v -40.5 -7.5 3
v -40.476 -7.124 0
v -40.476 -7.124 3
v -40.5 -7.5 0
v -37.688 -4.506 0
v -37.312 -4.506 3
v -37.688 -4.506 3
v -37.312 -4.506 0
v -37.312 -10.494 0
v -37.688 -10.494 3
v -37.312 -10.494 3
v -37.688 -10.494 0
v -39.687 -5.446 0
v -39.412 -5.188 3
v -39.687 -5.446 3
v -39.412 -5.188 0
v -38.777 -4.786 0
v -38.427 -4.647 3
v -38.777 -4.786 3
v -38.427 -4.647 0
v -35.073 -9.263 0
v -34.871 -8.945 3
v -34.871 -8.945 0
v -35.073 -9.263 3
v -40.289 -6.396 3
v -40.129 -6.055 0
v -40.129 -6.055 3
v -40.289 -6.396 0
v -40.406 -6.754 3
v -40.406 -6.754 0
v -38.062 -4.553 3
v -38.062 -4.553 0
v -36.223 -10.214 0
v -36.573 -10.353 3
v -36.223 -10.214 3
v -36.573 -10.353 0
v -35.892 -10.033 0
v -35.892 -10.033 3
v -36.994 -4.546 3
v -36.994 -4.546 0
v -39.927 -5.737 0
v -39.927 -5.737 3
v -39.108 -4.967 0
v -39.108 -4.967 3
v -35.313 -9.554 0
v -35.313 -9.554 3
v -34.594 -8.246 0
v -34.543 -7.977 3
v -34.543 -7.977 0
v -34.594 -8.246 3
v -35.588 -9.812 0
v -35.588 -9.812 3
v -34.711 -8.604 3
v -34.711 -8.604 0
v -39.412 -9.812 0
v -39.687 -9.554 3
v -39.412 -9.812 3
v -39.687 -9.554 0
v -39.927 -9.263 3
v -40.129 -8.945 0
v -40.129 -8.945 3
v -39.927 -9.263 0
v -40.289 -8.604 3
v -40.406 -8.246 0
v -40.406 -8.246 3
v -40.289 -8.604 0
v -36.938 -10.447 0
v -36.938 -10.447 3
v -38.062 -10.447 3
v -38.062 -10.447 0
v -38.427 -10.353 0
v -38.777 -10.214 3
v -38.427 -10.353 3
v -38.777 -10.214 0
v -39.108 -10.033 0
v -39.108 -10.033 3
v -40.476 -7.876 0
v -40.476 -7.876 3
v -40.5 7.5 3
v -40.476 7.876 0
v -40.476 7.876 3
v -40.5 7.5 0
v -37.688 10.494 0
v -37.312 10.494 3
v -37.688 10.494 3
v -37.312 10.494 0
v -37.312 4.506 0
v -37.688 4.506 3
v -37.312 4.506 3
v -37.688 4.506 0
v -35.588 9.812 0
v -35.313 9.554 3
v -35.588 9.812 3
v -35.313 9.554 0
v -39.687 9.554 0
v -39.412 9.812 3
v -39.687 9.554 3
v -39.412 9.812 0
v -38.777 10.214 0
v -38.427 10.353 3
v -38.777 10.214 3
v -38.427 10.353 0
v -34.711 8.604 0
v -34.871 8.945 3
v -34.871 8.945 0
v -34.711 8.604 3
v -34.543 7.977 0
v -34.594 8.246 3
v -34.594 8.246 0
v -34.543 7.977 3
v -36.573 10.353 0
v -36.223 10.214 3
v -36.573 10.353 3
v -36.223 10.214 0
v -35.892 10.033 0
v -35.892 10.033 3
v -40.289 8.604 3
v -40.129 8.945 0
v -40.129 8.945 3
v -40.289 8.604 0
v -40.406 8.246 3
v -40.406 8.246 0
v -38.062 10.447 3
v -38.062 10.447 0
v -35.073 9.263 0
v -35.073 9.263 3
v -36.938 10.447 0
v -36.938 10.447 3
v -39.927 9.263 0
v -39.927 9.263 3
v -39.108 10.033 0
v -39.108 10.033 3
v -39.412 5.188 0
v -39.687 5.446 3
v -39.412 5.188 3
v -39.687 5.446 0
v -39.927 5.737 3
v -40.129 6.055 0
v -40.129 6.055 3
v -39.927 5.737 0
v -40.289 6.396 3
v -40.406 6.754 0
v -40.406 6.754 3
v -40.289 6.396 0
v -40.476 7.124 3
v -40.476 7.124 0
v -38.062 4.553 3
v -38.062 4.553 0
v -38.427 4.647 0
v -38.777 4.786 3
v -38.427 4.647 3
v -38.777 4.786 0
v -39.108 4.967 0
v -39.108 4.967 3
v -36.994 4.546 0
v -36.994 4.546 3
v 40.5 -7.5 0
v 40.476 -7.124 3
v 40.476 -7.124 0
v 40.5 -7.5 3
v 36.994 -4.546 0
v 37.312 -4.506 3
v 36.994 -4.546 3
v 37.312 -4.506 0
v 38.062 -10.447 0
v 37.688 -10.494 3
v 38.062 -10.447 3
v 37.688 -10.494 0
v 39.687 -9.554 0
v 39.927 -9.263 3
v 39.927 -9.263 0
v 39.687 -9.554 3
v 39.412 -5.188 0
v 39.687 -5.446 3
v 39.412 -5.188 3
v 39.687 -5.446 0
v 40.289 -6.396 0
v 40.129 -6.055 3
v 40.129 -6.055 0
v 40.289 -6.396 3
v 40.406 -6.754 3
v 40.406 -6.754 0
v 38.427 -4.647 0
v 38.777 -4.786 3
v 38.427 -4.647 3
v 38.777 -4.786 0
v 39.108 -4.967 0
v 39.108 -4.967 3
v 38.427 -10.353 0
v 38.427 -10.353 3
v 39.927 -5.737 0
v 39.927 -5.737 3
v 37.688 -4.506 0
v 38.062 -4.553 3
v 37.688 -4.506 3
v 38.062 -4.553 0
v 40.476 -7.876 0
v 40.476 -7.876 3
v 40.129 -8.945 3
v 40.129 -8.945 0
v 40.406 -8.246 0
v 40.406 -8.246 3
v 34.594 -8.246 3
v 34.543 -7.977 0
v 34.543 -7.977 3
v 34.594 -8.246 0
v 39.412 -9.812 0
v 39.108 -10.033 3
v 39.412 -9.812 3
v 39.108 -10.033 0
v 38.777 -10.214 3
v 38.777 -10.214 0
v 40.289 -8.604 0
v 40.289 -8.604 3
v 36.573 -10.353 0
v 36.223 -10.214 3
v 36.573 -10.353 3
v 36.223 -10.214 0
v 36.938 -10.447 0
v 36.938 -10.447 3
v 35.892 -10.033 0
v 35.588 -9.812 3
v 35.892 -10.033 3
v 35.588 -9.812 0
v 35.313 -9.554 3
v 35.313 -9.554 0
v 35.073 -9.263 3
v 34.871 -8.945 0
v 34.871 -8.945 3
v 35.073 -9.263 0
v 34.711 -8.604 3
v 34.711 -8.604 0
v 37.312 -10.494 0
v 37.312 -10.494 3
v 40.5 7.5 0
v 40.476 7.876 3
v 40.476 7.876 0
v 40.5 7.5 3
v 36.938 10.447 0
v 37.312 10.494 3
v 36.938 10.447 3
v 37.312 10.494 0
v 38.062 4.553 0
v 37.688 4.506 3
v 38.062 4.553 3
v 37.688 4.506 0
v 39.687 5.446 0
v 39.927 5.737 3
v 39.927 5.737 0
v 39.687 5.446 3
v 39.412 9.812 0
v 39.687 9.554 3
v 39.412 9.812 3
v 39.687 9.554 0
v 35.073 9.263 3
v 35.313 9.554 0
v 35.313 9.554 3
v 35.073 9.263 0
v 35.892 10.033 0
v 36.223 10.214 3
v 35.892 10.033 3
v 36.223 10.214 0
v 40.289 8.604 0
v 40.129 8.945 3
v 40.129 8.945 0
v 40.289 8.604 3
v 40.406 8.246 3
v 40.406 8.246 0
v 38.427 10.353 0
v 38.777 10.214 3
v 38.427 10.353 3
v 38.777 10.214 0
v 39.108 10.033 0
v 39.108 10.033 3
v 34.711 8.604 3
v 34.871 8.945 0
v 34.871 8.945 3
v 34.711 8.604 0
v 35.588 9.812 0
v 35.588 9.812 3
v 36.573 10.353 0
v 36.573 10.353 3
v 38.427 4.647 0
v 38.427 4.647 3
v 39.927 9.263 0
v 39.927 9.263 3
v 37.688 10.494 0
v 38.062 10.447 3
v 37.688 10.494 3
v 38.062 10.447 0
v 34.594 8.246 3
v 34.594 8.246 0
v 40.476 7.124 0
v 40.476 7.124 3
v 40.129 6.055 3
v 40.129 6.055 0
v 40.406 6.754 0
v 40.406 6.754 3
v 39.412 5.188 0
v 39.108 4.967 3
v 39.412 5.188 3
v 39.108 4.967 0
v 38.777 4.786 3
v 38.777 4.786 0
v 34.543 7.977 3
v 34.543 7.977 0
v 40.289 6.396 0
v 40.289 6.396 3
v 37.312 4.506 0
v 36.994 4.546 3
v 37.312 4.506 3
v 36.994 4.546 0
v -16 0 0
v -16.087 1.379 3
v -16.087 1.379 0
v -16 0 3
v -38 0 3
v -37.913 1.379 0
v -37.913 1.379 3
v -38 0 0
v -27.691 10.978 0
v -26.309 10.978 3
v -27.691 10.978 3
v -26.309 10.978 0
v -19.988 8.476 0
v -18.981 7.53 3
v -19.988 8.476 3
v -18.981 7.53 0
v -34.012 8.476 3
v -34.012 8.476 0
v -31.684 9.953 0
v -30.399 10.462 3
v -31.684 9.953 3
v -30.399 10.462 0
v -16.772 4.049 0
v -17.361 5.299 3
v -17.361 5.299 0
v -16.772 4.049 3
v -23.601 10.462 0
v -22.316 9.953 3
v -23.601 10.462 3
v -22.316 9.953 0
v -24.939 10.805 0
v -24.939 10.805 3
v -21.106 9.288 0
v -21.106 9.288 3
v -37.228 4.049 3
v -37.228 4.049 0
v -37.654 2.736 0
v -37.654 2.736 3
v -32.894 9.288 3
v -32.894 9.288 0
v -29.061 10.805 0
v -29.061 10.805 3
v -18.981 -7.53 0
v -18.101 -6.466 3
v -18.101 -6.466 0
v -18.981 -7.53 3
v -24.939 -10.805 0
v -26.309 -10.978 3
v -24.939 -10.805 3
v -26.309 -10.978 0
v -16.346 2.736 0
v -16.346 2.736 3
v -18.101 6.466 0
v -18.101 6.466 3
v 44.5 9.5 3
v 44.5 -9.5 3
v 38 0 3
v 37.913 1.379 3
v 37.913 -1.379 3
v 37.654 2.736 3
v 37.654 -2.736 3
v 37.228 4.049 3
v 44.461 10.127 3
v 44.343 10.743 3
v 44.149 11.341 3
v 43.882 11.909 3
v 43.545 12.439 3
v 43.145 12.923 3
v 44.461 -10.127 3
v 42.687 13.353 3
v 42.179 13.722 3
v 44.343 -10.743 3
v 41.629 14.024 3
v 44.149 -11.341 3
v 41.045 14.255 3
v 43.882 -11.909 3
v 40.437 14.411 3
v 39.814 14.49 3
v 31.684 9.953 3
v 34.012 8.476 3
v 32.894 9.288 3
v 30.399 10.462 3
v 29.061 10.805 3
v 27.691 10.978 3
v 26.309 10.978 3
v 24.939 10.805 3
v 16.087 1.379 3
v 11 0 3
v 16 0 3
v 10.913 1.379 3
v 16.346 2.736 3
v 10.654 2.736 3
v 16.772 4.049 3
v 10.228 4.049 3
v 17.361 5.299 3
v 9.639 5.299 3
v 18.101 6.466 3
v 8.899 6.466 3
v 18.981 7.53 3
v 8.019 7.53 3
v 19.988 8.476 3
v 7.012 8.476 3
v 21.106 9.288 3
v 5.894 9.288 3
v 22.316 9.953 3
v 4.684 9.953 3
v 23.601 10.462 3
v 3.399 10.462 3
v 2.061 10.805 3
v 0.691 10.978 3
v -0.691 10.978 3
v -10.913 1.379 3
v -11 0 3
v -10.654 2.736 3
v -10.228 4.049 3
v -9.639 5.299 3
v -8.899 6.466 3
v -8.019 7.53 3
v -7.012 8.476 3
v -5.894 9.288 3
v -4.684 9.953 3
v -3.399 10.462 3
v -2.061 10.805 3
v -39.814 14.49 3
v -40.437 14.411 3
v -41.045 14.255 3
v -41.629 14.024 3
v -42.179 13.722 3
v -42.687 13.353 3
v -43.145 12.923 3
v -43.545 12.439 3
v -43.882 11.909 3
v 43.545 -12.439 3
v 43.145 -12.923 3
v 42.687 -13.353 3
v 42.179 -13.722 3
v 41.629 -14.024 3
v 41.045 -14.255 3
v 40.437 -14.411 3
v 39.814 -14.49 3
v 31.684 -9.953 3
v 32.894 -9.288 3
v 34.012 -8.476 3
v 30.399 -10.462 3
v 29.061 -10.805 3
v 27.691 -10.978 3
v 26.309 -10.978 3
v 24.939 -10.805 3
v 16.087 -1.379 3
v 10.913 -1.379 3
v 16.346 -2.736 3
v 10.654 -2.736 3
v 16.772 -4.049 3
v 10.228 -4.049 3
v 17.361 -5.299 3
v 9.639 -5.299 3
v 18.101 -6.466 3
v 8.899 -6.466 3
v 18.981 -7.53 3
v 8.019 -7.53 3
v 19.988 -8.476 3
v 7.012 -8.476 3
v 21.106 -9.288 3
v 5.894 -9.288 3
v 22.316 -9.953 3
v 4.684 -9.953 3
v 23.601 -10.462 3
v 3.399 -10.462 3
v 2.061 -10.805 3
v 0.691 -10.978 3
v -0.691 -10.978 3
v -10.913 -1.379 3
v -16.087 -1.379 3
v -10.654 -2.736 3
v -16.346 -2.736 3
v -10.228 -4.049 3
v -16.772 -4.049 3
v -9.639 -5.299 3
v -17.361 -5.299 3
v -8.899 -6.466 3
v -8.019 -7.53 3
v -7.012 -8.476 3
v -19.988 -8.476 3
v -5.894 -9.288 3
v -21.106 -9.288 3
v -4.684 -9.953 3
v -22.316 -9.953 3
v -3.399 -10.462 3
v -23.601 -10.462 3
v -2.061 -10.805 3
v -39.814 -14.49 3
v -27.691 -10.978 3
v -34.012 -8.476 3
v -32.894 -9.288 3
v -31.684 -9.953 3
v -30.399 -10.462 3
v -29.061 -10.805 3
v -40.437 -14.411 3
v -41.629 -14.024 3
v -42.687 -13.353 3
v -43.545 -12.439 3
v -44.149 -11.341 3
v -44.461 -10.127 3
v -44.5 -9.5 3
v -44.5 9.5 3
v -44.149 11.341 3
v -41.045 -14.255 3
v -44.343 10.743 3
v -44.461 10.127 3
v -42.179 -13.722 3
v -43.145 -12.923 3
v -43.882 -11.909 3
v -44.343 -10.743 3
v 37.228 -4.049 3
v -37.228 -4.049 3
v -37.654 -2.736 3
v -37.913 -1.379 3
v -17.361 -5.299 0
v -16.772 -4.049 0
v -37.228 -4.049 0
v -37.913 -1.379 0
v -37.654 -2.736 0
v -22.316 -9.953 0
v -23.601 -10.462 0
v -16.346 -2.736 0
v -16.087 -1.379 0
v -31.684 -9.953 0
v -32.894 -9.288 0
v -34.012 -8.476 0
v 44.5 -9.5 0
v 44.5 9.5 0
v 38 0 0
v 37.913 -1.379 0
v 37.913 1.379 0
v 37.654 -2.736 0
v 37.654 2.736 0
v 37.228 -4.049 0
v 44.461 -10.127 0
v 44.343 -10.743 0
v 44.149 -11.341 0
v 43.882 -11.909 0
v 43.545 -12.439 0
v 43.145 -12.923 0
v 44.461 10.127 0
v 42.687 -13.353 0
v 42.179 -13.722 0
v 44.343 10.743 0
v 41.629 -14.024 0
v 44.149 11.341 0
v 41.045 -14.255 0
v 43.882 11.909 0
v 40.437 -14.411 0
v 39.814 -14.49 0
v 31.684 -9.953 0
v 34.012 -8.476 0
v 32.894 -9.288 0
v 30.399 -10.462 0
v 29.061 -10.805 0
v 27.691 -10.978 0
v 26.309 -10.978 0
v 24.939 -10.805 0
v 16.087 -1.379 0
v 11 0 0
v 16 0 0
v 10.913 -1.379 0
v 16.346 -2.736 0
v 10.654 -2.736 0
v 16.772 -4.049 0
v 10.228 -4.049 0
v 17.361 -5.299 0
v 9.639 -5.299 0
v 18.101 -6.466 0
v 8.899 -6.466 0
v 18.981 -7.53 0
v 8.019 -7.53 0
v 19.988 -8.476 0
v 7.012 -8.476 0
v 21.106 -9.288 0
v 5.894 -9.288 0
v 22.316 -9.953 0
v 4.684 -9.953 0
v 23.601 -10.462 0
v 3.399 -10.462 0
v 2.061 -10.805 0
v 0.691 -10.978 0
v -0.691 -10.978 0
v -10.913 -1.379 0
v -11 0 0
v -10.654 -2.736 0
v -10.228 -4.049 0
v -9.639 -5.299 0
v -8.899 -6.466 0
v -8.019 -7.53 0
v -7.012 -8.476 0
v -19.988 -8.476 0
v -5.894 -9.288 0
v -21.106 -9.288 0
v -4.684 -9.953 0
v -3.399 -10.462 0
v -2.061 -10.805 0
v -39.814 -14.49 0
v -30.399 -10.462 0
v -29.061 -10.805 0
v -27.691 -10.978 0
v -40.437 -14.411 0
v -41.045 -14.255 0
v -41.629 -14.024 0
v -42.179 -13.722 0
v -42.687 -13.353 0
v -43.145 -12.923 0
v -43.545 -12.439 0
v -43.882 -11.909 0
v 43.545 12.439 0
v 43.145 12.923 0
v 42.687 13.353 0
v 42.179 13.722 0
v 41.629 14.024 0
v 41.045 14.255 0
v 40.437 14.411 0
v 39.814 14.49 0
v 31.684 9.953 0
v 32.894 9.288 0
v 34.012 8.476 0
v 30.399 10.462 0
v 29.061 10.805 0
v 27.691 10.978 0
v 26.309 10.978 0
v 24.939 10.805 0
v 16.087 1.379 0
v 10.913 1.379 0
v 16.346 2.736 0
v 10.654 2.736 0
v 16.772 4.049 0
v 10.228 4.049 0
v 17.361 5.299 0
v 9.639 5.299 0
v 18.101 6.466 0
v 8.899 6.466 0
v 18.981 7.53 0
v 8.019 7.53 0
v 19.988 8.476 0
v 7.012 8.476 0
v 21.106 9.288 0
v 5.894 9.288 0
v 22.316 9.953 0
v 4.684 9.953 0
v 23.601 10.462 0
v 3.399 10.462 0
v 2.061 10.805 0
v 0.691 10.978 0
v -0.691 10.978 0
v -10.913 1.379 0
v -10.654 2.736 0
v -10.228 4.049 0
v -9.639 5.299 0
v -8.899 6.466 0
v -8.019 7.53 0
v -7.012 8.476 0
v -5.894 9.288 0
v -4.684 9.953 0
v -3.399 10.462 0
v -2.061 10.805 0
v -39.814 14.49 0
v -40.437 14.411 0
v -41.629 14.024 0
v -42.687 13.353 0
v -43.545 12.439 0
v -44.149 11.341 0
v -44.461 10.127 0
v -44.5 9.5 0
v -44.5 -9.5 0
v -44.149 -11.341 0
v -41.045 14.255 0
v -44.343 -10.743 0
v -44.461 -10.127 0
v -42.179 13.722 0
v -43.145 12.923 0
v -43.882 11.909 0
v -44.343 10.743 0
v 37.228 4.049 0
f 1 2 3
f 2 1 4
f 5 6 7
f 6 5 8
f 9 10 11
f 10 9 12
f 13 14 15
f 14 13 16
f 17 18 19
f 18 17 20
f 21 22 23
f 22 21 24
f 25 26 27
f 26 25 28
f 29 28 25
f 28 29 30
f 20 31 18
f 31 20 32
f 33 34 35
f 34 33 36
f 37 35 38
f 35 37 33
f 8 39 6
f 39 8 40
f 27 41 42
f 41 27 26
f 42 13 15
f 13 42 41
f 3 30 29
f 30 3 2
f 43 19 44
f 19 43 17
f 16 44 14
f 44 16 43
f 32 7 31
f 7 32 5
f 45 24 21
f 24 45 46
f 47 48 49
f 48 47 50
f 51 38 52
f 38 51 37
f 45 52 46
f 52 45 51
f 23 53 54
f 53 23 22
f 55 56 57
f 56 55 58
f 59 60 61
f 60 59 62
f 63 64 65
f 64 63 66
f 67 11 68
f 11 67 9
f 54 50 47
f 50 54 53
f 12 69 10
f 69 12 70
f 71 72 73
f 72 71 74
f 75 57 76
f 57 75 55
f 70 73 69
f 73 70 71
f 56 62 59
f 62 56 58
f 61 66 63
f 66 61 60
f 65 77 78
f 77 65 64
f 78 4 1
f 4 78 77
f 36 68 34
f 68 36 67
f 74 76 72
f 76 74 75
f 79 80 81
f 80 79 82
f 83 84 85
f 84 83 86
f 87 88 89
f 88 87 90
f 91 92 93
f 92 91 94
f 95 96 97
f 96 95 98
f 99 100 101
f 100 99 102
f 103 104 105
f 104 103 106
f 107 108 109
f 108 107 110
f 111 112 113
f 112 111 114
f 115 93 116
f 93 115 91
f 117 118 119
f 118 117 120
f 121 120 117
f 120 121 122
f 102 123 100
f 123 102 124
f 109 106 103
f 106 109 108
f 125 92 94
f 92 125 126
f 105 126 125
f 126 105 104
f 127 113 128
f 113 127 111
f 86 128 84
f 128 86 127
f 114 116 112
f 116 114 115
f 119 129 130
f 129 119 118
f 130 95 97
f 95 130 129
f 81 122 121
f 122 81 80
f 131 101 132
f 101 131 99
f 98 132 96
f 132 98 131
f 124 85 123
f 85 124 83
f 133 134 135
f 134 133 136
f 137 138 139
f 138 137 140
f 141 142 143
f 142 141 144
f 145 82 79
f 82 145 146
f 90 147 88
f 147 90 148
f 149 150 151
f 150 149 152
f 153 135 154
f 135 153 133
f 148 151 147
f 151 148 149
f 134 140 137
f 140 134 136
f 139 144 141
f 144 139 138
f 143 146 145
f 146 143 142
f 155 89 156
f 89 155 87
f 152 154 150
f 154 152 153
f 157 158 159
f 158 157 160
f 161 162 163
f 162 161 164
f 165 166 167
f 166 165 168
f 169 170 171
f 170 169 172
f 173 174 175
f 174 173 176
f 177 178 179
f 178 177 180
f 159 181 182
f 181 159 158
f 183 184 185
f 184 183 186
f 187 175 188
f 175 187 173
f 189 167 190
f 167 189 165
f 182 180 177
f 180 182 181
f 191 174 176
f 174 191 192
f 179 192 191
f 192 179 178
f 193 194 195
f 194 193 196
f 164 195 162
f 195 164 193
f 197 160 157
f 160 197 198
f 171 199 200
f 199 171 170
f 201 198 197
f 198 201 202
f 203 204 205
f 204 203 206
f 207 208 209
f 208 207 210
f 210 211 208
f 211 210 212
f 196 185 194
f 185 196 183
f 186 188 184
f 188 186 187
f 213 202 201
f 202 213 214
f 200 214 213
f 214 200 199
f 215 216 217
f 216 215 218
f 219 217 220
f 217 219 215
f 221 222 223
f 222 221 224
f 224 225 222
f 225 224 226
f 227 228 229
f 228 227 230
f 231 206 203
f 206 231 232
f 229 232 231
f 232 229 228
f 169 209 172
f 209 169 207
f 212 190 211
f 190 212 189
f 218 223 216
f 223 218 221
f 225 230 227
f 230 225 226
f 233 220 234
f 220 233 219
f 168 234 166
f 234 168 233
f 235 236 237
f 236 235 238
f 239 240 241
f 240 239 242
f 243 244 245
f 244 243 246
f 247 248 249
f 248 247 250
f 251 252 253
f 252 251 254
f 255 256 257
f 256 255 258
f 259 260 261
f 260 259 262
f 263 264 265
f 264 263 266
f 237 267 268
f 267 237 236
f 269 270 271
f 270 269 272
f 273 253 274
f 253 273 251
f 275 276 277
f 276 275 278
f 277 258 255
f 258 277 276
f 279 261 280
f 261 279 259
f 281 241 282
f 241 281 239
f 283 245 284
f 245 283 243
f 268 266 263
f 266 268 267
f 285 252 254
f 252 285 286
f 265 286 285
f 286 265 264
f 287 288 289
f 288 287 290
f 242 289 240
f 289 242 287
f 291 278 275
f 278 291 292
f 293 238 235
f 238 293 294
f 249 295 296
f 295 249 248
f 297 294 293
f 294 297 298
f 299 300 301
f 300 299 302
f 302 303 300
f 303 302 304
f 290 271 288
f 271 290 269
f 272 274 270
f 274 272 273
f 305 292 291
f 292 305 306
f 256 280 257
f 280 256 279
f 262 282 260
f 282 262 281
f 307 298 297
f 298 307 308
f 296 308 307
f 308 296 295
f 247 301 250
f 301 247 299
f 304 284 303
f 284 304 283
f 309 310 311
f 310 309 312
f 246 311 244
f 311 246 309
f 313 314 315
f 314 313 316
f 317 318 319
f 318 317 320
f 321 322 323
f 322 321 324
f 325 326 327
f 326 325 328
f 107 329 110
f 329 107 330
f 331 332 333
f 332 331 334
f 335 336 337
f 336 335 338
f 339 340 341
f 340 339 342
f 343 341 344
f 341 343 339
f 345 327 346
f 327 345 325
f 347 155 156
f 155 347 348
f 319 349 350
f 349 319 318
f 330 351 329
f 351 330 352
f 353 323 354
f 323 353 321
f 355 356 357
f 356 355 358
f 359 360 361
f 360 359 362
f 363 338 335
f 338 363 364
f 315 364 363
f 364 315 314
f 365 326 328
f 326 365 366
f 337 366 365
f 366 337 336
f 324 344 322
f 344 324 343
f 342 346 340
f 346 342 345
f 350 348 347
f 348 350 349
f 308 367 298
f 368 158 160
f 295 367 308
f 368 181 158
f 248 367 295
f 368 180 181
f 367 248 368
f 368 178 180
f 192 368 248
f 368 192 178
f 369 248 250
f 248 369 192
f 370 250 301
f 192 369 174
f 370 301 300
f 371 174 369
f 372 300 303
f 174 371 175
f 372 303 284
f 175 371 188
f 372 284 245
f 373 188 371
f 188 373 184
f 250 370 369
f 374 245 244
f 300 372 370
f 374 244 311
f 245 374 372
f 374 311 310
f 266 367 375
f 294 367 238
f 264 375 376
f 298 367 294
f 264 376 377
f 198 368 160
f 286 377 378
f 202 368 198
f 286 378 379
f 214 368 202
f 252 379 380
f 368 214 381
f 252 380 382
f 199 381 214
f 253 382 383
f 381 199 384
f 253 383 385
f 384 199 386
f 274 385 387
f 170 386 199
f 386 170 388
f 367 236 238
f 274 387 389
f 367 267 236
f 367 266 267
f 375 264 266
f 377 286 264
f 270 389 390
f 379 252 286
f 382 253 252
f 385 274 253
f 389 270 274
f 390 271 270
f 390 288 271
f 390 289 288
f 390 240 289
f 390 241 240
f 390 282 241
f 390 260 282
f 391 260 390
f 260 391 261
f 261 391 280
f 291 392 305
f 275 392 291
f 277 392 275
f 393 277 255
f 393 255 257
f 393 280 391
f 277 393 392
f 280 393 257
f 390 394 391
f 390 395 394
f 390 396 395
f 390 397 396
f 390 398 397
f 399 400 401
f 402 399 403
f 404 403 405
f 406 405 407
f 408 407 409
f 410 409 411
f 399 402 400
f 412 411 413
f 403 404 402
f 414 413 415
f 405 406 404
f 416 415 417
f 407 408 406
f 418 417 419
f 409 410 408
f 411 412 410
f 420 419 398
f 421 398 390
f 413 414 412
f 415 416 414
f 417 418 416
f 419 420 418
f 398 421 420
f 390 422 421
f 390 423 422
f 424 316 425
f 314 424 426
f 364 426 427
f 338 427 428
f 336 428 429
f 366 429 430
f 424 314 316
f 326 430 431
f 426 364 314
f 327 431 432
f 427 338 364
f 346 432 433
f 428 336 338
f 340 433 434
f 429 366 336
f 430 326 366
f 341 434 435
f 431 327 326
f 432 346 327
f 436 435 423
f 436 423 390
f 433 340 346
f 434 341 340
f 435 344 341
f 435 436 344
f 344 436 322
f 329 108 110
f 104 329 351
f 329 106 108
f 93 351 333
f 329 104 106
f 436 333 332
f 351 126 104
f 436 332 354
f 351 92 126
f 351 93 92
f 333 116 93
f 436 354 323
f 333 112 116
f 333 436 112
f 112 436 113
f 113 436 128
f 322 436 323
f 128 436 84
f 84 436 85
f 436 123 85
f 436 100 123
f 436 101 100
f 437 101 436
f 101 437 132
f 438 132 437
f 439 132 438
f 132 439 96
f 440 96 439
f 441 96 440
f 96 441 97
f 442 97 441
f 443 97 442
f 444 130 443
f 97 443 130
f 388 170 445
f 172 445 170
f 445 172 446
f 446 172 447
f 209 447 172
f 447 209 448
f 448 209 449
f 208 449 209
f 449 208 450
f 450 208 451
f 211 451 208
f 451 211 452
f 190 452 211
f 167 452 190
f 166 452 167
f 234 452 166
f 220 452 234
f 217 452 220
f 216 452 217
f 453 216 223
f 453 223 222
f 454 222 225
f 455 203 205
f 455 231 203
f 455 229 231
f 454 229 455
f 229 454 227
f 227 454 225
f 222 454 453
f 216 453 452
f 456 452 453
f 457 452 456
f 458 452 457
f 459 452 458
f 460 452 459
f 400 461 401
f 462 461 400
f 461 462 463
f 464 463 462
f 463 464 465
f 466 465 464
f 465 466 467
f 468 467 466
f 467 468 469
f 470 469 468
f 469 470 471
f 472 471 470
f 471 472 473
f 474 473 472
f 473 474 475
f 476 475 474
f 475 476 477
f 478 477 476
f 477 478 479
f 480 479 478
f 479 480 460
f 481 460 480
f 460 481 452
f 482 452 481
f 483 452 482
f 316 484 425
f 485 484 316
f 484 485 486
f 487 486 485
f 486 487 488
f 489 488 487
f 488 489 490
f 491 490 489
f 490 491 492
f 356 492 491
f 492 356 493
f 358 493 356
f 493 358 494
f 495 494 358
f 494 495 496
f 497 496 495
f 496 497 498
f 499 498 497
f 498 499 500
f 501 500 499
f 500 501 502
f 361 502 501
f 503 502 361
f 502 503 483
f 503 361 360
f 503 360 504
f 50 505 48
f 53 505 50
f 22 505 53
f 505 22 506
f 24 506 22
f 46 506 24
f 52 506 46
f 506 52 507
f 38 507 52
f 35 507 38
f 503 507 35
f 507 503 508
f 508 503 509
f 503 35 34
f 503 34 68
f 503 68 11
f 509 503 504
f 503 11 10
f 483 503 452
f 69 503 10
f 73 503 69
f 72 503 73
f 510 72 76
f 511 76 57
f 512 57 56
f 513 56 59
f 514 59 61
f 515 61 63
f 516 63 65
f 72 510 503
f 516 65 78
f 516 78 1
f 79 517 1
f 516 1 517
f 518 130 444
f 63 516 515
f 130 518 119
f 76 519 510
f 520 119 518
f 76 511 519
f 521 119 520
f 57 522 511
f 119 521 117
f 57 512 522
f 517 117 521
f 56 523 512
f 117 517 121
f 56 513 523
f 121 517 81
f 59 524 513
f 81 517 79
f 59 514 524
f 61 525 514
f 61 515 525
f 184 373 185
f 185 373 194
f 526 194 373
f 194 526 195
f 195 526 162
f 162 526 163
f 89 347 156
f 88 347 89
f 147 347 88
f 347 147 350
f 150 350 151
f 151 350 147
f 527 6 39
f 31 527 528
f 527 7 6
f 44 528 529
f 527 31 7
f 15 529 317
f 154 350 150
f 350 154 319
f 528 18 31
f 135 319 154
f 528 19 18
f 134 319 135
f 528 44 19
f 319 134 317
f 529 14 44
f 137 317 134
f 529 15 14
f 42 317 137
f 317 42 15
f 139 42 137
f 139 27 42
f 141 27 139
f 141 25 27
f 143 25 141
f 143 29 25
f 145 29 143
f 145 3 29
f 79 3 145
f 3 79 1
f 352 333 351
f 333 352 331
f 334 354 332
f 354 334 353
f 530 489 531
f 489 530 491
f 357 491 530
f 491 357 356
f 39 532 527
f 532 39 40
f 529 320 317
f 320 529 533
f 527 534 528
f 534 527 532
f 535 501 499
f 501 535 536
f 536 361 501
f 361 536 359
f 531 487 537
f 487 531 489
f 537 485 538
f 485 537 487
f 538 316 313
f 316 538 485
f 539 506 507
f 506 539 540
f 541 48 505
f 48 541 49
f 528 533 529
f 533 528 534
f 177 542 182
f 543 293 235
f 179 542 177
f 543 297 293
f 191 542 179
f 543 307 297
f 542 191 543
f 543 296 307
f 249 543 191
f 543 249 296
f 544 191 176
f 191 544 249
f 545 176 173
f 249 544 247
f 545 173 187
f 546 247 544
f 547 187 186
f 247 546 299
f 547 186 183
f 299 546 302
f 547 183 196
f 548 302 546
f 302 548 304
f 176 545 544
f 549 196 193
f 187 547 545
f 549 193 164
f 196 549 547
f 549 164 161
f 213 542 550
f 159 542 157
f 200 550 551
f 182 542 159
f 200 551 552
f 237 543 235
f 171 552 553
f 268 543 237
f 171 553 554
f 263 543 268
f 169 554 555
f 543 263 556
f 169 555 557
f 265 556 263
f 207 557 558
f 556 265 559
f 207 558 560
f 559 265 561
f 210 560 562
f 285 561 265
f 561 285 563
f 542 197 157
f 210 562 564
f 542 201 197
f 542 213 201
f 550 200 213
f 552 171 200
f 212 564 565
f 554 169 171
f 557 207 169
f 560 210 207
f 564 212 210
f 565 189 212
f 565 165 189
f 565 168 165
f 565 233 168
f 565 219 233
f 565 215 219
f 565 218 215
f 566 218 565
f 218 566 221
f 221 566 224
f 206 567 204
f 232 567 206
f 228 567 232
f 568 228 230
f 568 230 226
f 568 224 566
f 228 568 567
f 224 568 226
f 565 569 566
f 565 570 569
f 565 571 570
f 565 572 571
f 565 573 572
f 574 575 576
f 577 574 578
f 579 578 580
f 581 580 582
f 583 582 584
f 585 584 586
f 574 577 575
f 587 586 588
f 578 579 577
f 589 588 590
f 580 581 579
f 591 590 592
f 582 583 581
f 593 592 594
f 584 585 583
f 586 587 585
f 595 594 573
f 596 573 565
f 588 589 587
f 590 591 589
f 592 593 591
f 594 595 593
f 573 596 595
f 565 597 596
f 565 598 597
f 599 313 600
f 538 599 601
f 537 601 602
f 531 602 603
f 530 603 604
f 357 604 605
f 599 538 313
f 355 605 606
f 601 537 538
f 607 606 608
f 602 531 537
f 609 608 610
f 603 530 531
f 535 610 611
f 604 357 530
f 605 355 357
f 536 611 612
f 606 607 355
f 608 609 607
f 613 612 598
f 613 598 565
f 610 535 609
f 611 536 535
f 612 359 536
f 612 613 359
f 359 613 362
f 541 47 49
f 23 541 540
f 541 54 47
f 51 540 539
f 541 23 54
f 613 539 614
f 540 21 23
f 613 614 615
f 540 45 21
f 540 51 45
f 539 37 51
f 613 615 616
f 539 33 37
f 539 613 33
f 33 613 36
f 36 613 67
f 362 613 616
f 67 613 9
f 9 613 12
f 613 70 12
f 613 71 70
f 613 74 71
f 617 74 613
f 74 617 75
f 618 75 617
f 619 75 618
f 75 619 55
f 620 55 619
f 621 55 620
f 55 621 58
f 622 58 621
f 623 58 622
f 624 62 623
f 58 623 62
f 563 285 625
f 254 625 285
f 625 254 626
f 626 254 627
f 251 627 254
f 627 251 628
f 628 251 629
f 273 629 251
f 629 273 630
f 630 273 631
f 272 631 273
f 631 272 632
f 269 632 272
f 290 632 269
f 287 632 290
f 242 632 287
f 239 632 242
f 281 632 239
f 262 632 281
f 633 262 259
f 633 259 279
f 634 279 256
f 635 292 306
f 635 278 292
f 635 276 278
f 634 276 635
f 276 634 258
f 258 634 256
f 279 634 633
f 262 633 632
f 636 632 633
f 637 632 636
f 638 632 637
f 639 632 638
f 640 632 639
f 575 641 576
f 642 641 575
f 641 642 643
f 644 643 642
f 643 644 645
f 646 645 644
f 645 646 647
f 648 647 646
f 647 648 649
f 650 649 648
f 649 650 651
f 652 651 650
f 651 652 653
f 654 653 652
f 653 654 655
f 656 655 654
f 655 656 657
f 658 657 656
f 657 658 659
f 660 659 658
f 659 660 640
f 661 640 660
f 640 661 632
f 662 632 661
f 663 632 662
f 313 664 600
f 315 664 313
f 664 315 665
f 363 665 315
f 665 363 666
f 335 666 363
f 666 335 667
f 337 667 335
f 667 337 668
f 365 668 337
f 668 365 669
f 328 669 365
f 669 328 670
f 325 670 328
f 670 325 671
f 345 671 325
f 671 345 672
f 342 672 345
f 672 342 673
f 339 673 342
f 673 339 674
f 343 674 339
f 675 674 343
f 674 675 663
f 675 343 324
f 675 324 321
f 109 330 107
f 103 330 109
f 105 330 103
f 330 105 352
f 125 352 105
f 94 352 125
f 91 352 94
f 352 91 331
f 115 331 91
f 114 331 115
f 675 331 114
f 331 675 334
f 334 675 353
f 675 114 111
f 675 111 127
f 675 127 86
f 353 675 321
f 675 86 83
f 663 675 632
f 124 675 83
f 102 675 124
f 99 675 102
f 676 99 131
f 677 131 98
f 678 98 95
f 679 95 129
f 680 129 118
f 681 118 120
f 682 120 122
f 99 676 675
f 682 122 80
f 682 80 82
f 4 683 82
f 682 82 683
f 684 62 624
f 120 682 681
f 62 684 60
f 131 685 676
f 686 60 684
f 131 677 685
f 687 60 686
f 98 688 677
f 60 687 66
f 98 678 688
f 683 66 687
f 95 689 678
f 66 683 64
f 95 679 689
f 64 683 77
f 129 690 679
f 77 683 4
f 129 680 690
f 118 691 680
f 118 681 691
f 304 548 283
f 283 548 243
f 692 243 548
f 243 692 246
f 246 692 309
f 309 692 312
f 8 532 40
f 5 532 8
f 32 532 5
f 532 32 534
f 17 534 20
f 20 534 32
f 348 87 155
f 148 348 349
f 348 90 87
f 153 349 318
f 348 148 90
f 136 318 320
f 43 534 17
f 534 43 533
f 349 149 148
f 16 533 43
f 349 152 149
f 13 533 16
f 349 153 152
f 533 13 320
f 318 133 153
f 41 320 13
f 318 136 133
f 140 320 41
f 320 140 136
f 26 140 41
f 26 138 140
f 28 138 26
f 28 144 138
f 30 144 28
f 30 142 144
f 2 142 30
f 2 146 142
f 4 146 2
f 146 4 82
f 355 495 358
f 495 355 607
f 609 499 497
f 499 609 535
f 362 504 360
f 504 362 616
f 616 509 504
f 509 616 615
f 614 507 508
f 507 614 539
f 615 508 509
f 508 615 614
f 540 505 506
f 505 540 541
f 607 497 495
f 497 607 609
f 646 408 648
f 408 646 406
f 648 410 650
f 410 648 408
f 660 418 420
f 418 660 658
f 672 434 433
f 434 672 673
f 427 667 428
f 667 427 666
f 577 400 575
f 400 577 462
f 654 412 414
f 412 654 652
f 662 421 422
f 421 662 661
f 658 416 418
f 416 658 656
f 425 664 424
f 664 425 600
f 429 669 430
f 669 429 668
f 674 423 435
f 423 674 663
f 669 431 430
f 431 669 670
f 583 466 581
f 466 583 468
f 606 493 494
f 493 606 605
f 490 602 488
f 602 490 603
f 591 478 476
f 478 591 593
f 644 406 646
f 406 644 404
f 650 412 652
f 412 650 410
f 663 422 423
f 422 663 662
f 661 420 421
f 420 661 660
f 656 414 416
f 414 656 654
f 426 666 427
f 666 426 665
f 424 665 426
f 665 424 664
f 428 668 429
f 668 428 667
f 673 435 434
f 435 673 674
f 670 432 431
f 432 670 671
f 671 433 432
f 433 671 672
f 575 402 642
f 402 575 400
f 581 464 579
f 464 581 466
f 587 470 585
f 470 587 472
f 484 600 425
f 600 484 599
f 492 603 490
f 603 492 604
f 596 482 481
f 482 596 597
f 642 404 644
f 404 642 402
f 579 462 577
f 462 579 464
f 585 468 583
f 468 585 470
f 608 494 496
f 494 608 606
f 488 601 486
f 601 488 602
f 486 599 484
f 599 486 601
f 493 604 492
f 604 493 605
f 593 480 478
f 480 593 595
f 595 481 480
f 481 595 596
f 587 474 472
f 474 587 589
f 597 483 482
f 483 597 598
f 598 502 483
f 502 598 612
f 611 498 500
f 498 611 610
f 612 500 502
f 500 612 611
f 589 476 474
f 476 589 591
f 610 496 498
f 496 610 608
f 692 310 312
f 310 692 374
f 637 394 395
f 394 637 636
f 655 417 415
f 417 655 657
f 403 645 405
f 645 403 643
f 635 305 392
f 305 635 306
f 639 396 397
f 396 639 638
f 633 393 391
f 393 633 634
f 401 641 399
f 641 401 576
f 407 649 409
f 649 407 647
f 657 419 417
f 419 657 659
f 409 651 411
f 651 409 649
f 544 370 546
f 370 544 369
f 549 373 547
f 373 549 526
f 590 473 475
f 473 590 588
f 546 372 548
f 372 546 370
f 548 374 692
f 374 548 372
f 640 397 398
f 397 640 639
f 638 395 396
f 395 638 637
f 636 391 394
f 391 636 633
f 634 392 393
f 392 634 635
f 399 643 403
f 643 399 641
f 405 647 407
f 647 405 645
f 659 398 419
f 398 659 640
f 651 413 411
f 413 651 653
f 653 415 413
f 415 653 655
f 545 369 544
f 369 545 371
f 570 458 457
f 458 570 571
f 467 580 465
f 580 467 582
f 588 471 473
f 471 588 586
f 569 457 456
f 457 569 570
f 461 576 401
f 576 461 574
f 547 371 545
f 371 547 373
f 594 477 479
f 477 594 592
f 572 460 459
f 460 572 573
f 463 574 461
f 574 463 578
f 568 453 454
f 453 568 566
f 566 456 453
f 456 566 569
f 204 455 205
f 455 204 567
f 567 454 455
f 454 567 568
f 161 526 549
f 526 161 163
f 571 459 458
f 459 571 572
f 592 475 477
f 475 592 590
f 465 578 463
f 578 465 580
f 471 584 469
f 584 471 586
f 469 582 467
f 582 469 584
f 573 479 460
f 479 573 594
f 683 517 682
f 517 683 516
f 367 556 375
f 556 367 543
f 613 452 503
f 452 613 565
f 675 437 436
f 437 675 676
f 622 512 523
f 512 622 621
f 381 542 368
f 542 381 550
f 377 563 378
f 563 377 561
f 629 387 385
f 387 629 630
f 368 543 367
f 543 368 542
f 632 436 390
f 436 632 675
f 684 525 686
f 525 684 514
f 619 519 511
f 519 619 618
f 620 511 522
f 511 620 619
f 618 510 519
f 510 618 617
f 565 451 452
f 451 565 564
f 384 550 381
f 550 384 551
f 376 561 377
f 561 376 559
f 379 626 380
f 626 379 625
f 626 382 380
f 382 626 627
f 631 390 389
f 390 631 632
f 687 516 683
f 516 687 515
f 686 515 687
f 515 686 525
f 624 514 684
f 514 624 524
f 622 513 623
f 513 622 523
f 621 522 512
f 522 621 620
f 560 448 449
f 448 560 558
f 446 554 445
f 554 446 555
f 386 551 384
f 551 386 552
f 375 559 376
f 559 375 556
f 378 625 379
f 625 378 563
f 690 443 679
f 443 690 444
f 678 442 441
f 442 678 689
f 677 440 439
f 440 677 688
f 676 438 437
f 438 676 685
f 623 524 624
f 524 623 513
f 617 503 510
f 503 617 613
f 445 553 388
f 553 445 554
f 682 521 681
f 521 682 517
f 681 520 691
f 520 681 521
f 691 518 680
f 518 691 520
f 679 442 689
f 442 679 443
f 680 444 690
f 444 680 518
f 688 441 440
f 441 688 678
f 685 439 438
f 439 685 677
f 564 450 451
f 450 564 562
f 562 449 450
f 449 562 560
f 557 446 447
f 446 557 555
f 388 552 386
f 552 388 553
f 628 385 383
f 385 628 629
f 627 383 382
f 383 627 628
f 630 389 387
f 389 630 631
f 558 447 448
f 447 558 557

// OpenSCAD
$fn = 50;


difference() {
	union() {
		hull() {
			translate(v = [-39.5000000000, 9.5000000000, 0]) {
				cylinder(h = 3, r = 5);
			}
			translate(v = [39.5000000000, 9.5000000000, 0]) {
				cylinder(h = 3, r = 5);
			}
			translate(v = [-39.5000000000, -9.5000000000, 0]) {
				cylinder(h = 3, r = 5);
			}
			translate(v = [39.5000000000, -9.5000000000, 0]) {
				cylinder(h = 3, r = 5);
			}
		}
	}
	union() {
		#translate(v = [-37.5000000000, -7.5000000000, -100.0000000000]) {
			cylinder(h = 200, r = 3.0000000000);
		}
		#translate(v = [-37.5000000000, 7.5000000000, -100.0000000000]) {
			cylinder(h = 200, r = 3.0000000000);
		}
		#translate(v = [37.5000000000, -7.5000000000, -100.0000000000]) {
			cylinder(h = 200, r = 3.0000000000);
		}
		#translate(v = [37.5000000000, 7.5000000000, -100.0000000000]) {
			cylinder(h = 200, r = 3.0000000000);
		}
		#translate(v = [-27.0000000000, 0, 0]) {
			cylinder(h = 3, r = 11.0000000000);
		}
		#cylinder(h = 3, r = 11.0000000000);
		#translate(v = [27.0000000000, 0, 0]) {
			cylinder(h = 3, r = 11.0000000000);
		}
	}
}
